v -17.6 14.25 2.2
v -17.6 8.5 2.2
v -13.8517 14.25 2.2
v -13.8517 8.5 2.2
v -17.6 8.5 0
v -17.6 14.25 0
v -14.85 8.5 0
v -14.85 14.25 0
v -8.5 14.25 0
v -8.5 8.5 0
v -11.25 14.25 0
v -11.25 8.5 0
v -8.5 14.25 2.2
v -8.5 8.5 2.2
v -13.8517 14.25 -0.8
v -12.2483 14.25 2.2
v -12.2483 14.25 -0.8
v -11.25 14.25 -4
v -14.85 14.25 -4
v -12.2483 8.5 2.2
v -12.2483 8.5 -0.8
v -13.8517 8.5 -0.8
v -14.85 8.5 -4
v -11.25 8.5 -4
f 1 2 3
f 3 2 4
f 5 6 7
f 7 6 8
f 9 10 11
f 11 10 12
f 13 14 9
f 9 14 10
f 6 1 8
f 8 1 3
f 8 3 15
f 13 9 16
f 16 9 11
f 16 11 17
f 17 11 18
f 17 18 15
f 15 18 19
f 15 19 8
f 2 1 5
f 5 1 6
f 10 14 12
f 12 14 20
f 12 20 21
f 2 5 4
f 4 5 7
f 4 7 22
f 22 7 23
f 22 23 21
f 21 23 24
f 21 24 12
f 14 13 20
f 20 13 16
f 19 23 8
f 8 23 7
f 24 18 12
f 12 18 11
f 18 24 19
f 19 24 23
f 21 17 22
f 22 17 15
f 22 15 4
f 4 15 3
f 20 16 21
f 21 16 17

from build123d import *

# Parameters (mm, degrees)
SKETCH1_W           = 9.1
SKETCH1_H           = 5.75
BOSS_EXTRUDE1_DEPTH = 2.2
SKETCH3_W           = 3.6
SKETCH3_H           = 5.75
BOSS_EXTRUDE2_DEPTH = 4
SKETCH2_W           = 1.60331862
SKETCH2_H           = 15
CUT_EXTRUDE1_DEPTH  = 3


with BuildPart() as part:
    # Sketch1 → Boss-Extrude1 (new body)
    with BuildSketch(Plane.XY):
        with Locations((-13.05, 11.375)):
            Rectangle(SKETCH1_W, SKETCH1_H)
    extrude(amount=BOSS_EXTRUDE1_DEPTH)

    # Sketch3 → Boss-Extrude2 (add)
    with BuildSketch(Plane(origin=(0, 0, 0), x_dir=(-1, 0, 0), z_dir=(0, 0, -1))):
        with Locations((13.05, 11.375)):
            Rectangle(SKETCH3_W, SKETCH3_H)
    extrude(amount=BOSS_EXTRUDE2_DEPTH)

    # Sketch2 → Cut-Extrude1 (cut)
    with BuildSketch(Plane.XY.offset(2.2)):
        with Locations((-13.05, 11.375)):
            Rectangle(SKETCH2_W, SKETCH2_H)
    extrude(amount=-CUT_EXTRUDE1_DEPTH, mode=Mode.SUBTRACT)


solid = part.part
